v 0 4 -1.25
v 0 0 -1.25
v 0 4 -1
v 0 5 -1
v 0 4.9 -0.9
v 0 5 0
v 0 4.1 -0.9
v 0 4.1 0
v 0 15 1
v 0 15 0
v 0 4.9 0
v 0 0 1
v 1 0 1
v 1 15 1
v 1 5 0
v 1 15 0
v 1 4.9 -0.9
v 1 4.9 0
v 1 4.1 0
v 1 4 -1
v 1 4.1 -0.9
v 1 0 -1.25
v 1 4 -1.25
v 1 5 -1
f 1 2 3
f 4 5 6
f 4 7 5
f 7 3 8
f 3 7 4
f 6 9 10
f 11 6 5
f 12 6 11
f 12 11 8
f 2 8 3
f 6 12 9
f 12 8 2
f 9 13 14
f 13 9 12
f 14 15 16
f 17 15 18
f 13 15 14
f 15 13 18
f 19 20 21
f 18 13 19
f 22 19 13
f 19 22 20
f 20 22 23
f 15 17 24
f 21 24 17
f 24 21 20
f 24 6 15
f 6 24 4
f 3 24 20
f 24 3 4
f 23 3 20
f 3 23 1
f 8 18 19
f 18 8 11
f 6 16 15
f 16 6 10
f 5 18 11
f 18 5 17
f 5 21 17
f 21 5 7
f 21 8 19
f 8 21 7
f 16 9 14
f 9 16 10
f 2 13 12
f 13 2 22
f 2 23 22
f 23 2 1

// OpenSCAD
cube([1,15,1]);

translate([0,0,-1.25])
cube([1,4,2]);

difference(){
translate([0,4,-1])
cube([1,1,2]);
    
translate([-0.1,4.1,-0.9])
cube([2,0.8,0.9]);
}
